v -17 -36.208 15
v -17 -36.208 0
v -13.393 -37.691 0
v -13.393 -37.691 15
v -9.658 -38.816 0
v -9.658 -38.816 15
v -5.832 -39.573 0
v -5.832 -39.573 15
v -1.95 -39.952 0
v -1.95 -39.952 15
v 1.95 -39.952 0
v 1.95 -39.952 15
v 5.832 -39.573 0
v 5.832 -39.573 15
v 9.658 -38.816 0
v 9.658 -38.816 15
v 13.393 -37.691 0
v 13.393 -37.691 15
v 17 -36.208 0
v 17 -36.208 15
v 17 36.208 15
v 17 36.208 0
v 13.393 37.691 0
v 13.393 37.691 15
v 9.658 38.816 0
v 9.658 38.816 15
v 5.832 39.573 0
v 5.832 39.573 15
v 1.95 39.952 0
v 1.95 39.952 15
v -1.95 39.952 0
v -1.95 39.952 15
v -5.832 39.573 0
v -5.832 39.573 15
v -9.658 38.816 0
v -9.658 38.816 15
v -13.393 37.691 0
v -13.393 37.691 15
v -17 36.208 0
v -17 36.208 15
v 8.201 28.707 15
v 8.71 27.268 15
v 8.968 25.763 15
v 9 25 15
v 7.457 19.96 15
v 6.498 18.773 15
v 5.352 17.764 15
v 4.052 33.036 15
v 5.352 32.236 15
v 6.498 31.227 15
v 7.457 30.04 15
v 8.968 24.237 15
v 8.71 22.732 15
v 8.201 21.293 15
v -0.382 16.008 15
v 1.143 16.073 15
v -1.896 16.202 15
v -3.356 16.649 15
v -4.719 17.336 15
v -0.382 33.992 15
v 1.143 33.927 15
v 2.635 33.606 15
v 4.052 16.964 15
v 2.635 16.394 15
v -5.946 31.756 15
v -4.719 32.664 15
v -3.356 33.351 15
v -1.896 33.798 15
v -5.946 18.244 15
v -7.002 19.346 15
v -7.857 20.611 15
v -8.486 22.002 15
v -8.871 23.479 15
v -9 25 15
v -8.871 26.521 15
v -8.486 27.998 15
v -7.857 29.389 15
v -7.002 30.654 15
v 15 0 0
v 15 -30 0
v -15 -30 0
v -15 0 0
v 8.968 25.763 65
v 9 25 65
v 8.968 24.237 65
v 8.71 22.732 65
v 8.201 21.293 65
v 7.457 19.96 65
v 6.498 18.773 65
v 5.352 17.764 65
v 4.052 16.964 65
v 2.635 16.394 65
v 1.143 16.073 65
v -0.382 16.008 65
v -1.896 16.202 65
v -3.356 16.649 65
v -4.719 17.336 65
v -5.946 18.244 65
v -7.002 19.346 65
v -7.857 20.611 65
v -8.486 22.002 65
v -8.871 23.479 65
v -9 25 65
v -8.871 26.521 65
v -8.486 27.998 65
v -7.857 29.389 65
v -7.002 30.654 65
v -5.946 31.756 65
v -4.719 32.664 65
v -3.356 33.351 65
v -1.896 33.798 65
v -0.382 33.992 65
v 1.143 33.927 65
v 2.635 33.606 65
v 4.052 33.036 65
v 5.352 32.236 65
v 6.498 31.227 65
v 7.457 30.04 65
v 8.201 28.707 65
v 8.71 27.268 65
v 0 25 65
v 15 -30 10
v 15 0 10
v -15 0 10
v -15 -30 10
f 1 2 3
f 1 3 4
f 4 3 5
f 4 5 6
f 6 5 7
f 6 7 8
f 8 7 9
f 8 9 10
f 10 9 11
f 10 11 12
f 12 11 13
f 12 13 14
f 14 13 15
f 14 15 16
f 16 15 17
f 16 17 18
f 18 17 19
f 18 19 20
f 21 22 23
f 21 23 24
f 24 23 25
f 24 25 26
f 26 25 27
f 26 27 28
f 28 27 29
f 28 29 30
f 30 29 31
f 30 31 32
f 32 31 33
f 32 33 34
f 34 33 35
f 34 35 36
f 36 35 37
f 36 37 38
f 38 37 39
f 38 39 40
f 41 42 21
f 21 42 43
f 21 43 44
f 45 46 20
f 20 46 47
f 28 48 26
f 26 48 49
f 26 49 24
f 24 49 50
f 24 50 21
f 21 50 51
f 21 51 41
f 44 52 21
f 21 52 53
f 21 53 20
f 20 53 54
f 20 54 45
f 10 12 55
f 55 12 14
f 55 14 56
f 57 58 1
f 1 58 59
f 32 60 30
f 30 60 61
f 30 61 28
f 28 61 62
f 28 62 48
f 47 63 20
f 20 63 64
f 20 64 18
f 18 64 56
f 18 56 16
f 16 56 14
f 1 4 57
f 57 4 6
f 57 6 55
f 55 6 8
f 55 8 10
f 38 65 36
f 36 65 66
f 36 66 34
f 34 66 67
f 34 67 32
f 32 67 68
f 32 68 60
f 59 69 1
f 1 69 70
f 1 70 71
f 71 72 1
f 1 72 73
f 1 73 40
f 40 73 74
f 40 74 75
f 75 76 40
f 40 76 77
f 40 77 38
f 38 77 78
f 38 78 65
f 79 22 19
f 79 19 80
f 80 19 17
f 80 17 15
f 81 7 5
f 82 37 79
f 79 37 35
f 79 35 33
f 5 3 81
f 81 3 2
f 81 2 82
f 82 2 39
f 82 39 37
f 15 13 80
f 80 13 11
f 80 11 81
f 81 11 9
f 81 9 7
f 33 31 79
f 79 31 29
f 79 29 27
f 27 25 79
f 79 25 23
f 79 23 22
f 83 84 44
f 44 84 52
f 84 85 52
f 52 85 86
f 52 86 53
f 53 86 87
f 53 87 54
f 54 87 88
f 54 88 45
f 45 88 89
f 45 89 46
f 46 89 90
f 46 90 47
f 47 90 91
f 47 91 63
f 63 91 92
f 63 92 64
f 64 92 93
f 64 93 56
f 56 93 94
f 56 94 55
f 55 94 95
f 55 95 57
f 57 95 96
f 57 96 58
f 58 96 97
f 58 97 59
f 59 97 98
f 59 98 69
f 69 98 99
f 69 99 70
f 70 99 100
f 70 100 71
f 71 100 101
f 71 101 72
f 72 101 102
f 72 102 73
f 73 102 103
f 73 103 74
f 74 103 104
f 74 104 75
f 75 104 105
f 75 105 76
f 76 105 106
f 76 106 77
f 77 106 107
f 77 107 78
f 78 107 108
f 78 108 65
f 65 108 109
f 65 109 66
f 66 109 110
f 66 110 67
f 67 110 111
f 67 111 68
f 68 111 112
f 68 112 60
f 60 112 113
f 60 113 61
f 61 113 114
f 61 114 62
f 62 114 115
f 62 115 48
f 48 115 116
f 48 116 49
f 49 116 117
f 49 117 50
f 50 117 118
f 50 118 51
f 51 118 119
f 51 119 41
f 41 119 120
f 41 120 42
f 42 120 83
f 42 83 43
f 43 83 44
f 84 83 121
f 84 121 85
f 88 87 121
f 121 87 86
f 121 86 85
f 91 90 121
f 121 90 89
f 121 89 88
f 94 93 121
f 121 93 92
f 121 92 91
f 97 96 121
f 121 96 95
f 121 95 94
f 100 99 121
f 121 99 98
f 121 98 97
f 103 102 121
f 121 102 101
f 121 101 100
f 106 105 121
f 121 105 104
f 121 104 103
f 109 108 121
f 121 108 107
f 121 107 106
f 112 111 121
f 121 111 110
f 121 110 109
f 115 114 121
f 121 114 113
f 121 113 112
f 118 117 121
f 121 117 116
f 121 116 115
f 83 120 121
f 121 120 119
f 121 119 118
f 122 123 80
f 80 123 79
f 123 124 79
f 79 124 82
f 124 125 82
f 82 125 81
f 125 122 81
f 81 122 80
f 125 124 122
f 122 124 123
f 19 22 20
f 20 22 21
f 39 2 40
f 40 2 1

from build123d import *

# Parameters (mm, degrees)
CROQUIS1_R              = 40
SALIENTE_EXTRUIR1_DEPTH = 15
CROQUIS3_R              = 9
SALIENTE_EXTRUIR2_DEPTH = 50
CROQUIS4_W              = 30
CROQUIS4_H              = 30
CORTAR_EXTRUIR1_DEPTH   = 10
CORTAR_EXTRUIR3_DEPTH   = 76.498344353


with BuildPart() as part:
    # Croquis1 → Saliente-Extruir1 (new body)
    with BuildSketch(Plane.XY):
        Circle(CROQUIS1_R)
    extrude(amount=SALIENTE_EXTRUIR1_DEPTH)

    # Croquis3 → Saliente-Extruir2 (add)
    with BuildSketch(Plane.XY.offset(15)):
        with Locations((0, 25)):
            Circle(CROQUIS3_R)
    extrude(amount=SALIENTE_EXTRUIR2_DEPTH)

    # Croquis4 → Cortar-Extruir1 (cut)
    with BuildSketch(Plane(origin=(0, 0, 0), x_dir=(-1, 0, 0), z_dir=(0, 0, -1))):
        with Locations((0, -15)):
            Rectangle(CROQUIS4_W, CROQUIS4_H)
    extrude(amount=-CORTAR_EXTRUIR1_DEPTH, mode=Mode.SUBTRACT)

    # Croquis5 → Cortar-Extruir3 (cut, through all)
    with BuildSketch(Plane.XY.offset(15)):
        with BuildLine():
            Line((-17, 36.20773398), (-17, -36.20773398))
            ThreePointArc((-17, -36.20773398), (-40, 0), (-17, 36.20773398))
        make_face()
        with BuildLine():
            Line((17, 36.20773398), (17, -36.20773398))
            ThreePointArc((17, -36.20773398), (40, 0), (17, 36.20773398))
        make_face()
    extrude(amount=-CORTAR_EXTRUIR3_DEPTH, mode=Mode.SUBTRACT)


solid = part.part
